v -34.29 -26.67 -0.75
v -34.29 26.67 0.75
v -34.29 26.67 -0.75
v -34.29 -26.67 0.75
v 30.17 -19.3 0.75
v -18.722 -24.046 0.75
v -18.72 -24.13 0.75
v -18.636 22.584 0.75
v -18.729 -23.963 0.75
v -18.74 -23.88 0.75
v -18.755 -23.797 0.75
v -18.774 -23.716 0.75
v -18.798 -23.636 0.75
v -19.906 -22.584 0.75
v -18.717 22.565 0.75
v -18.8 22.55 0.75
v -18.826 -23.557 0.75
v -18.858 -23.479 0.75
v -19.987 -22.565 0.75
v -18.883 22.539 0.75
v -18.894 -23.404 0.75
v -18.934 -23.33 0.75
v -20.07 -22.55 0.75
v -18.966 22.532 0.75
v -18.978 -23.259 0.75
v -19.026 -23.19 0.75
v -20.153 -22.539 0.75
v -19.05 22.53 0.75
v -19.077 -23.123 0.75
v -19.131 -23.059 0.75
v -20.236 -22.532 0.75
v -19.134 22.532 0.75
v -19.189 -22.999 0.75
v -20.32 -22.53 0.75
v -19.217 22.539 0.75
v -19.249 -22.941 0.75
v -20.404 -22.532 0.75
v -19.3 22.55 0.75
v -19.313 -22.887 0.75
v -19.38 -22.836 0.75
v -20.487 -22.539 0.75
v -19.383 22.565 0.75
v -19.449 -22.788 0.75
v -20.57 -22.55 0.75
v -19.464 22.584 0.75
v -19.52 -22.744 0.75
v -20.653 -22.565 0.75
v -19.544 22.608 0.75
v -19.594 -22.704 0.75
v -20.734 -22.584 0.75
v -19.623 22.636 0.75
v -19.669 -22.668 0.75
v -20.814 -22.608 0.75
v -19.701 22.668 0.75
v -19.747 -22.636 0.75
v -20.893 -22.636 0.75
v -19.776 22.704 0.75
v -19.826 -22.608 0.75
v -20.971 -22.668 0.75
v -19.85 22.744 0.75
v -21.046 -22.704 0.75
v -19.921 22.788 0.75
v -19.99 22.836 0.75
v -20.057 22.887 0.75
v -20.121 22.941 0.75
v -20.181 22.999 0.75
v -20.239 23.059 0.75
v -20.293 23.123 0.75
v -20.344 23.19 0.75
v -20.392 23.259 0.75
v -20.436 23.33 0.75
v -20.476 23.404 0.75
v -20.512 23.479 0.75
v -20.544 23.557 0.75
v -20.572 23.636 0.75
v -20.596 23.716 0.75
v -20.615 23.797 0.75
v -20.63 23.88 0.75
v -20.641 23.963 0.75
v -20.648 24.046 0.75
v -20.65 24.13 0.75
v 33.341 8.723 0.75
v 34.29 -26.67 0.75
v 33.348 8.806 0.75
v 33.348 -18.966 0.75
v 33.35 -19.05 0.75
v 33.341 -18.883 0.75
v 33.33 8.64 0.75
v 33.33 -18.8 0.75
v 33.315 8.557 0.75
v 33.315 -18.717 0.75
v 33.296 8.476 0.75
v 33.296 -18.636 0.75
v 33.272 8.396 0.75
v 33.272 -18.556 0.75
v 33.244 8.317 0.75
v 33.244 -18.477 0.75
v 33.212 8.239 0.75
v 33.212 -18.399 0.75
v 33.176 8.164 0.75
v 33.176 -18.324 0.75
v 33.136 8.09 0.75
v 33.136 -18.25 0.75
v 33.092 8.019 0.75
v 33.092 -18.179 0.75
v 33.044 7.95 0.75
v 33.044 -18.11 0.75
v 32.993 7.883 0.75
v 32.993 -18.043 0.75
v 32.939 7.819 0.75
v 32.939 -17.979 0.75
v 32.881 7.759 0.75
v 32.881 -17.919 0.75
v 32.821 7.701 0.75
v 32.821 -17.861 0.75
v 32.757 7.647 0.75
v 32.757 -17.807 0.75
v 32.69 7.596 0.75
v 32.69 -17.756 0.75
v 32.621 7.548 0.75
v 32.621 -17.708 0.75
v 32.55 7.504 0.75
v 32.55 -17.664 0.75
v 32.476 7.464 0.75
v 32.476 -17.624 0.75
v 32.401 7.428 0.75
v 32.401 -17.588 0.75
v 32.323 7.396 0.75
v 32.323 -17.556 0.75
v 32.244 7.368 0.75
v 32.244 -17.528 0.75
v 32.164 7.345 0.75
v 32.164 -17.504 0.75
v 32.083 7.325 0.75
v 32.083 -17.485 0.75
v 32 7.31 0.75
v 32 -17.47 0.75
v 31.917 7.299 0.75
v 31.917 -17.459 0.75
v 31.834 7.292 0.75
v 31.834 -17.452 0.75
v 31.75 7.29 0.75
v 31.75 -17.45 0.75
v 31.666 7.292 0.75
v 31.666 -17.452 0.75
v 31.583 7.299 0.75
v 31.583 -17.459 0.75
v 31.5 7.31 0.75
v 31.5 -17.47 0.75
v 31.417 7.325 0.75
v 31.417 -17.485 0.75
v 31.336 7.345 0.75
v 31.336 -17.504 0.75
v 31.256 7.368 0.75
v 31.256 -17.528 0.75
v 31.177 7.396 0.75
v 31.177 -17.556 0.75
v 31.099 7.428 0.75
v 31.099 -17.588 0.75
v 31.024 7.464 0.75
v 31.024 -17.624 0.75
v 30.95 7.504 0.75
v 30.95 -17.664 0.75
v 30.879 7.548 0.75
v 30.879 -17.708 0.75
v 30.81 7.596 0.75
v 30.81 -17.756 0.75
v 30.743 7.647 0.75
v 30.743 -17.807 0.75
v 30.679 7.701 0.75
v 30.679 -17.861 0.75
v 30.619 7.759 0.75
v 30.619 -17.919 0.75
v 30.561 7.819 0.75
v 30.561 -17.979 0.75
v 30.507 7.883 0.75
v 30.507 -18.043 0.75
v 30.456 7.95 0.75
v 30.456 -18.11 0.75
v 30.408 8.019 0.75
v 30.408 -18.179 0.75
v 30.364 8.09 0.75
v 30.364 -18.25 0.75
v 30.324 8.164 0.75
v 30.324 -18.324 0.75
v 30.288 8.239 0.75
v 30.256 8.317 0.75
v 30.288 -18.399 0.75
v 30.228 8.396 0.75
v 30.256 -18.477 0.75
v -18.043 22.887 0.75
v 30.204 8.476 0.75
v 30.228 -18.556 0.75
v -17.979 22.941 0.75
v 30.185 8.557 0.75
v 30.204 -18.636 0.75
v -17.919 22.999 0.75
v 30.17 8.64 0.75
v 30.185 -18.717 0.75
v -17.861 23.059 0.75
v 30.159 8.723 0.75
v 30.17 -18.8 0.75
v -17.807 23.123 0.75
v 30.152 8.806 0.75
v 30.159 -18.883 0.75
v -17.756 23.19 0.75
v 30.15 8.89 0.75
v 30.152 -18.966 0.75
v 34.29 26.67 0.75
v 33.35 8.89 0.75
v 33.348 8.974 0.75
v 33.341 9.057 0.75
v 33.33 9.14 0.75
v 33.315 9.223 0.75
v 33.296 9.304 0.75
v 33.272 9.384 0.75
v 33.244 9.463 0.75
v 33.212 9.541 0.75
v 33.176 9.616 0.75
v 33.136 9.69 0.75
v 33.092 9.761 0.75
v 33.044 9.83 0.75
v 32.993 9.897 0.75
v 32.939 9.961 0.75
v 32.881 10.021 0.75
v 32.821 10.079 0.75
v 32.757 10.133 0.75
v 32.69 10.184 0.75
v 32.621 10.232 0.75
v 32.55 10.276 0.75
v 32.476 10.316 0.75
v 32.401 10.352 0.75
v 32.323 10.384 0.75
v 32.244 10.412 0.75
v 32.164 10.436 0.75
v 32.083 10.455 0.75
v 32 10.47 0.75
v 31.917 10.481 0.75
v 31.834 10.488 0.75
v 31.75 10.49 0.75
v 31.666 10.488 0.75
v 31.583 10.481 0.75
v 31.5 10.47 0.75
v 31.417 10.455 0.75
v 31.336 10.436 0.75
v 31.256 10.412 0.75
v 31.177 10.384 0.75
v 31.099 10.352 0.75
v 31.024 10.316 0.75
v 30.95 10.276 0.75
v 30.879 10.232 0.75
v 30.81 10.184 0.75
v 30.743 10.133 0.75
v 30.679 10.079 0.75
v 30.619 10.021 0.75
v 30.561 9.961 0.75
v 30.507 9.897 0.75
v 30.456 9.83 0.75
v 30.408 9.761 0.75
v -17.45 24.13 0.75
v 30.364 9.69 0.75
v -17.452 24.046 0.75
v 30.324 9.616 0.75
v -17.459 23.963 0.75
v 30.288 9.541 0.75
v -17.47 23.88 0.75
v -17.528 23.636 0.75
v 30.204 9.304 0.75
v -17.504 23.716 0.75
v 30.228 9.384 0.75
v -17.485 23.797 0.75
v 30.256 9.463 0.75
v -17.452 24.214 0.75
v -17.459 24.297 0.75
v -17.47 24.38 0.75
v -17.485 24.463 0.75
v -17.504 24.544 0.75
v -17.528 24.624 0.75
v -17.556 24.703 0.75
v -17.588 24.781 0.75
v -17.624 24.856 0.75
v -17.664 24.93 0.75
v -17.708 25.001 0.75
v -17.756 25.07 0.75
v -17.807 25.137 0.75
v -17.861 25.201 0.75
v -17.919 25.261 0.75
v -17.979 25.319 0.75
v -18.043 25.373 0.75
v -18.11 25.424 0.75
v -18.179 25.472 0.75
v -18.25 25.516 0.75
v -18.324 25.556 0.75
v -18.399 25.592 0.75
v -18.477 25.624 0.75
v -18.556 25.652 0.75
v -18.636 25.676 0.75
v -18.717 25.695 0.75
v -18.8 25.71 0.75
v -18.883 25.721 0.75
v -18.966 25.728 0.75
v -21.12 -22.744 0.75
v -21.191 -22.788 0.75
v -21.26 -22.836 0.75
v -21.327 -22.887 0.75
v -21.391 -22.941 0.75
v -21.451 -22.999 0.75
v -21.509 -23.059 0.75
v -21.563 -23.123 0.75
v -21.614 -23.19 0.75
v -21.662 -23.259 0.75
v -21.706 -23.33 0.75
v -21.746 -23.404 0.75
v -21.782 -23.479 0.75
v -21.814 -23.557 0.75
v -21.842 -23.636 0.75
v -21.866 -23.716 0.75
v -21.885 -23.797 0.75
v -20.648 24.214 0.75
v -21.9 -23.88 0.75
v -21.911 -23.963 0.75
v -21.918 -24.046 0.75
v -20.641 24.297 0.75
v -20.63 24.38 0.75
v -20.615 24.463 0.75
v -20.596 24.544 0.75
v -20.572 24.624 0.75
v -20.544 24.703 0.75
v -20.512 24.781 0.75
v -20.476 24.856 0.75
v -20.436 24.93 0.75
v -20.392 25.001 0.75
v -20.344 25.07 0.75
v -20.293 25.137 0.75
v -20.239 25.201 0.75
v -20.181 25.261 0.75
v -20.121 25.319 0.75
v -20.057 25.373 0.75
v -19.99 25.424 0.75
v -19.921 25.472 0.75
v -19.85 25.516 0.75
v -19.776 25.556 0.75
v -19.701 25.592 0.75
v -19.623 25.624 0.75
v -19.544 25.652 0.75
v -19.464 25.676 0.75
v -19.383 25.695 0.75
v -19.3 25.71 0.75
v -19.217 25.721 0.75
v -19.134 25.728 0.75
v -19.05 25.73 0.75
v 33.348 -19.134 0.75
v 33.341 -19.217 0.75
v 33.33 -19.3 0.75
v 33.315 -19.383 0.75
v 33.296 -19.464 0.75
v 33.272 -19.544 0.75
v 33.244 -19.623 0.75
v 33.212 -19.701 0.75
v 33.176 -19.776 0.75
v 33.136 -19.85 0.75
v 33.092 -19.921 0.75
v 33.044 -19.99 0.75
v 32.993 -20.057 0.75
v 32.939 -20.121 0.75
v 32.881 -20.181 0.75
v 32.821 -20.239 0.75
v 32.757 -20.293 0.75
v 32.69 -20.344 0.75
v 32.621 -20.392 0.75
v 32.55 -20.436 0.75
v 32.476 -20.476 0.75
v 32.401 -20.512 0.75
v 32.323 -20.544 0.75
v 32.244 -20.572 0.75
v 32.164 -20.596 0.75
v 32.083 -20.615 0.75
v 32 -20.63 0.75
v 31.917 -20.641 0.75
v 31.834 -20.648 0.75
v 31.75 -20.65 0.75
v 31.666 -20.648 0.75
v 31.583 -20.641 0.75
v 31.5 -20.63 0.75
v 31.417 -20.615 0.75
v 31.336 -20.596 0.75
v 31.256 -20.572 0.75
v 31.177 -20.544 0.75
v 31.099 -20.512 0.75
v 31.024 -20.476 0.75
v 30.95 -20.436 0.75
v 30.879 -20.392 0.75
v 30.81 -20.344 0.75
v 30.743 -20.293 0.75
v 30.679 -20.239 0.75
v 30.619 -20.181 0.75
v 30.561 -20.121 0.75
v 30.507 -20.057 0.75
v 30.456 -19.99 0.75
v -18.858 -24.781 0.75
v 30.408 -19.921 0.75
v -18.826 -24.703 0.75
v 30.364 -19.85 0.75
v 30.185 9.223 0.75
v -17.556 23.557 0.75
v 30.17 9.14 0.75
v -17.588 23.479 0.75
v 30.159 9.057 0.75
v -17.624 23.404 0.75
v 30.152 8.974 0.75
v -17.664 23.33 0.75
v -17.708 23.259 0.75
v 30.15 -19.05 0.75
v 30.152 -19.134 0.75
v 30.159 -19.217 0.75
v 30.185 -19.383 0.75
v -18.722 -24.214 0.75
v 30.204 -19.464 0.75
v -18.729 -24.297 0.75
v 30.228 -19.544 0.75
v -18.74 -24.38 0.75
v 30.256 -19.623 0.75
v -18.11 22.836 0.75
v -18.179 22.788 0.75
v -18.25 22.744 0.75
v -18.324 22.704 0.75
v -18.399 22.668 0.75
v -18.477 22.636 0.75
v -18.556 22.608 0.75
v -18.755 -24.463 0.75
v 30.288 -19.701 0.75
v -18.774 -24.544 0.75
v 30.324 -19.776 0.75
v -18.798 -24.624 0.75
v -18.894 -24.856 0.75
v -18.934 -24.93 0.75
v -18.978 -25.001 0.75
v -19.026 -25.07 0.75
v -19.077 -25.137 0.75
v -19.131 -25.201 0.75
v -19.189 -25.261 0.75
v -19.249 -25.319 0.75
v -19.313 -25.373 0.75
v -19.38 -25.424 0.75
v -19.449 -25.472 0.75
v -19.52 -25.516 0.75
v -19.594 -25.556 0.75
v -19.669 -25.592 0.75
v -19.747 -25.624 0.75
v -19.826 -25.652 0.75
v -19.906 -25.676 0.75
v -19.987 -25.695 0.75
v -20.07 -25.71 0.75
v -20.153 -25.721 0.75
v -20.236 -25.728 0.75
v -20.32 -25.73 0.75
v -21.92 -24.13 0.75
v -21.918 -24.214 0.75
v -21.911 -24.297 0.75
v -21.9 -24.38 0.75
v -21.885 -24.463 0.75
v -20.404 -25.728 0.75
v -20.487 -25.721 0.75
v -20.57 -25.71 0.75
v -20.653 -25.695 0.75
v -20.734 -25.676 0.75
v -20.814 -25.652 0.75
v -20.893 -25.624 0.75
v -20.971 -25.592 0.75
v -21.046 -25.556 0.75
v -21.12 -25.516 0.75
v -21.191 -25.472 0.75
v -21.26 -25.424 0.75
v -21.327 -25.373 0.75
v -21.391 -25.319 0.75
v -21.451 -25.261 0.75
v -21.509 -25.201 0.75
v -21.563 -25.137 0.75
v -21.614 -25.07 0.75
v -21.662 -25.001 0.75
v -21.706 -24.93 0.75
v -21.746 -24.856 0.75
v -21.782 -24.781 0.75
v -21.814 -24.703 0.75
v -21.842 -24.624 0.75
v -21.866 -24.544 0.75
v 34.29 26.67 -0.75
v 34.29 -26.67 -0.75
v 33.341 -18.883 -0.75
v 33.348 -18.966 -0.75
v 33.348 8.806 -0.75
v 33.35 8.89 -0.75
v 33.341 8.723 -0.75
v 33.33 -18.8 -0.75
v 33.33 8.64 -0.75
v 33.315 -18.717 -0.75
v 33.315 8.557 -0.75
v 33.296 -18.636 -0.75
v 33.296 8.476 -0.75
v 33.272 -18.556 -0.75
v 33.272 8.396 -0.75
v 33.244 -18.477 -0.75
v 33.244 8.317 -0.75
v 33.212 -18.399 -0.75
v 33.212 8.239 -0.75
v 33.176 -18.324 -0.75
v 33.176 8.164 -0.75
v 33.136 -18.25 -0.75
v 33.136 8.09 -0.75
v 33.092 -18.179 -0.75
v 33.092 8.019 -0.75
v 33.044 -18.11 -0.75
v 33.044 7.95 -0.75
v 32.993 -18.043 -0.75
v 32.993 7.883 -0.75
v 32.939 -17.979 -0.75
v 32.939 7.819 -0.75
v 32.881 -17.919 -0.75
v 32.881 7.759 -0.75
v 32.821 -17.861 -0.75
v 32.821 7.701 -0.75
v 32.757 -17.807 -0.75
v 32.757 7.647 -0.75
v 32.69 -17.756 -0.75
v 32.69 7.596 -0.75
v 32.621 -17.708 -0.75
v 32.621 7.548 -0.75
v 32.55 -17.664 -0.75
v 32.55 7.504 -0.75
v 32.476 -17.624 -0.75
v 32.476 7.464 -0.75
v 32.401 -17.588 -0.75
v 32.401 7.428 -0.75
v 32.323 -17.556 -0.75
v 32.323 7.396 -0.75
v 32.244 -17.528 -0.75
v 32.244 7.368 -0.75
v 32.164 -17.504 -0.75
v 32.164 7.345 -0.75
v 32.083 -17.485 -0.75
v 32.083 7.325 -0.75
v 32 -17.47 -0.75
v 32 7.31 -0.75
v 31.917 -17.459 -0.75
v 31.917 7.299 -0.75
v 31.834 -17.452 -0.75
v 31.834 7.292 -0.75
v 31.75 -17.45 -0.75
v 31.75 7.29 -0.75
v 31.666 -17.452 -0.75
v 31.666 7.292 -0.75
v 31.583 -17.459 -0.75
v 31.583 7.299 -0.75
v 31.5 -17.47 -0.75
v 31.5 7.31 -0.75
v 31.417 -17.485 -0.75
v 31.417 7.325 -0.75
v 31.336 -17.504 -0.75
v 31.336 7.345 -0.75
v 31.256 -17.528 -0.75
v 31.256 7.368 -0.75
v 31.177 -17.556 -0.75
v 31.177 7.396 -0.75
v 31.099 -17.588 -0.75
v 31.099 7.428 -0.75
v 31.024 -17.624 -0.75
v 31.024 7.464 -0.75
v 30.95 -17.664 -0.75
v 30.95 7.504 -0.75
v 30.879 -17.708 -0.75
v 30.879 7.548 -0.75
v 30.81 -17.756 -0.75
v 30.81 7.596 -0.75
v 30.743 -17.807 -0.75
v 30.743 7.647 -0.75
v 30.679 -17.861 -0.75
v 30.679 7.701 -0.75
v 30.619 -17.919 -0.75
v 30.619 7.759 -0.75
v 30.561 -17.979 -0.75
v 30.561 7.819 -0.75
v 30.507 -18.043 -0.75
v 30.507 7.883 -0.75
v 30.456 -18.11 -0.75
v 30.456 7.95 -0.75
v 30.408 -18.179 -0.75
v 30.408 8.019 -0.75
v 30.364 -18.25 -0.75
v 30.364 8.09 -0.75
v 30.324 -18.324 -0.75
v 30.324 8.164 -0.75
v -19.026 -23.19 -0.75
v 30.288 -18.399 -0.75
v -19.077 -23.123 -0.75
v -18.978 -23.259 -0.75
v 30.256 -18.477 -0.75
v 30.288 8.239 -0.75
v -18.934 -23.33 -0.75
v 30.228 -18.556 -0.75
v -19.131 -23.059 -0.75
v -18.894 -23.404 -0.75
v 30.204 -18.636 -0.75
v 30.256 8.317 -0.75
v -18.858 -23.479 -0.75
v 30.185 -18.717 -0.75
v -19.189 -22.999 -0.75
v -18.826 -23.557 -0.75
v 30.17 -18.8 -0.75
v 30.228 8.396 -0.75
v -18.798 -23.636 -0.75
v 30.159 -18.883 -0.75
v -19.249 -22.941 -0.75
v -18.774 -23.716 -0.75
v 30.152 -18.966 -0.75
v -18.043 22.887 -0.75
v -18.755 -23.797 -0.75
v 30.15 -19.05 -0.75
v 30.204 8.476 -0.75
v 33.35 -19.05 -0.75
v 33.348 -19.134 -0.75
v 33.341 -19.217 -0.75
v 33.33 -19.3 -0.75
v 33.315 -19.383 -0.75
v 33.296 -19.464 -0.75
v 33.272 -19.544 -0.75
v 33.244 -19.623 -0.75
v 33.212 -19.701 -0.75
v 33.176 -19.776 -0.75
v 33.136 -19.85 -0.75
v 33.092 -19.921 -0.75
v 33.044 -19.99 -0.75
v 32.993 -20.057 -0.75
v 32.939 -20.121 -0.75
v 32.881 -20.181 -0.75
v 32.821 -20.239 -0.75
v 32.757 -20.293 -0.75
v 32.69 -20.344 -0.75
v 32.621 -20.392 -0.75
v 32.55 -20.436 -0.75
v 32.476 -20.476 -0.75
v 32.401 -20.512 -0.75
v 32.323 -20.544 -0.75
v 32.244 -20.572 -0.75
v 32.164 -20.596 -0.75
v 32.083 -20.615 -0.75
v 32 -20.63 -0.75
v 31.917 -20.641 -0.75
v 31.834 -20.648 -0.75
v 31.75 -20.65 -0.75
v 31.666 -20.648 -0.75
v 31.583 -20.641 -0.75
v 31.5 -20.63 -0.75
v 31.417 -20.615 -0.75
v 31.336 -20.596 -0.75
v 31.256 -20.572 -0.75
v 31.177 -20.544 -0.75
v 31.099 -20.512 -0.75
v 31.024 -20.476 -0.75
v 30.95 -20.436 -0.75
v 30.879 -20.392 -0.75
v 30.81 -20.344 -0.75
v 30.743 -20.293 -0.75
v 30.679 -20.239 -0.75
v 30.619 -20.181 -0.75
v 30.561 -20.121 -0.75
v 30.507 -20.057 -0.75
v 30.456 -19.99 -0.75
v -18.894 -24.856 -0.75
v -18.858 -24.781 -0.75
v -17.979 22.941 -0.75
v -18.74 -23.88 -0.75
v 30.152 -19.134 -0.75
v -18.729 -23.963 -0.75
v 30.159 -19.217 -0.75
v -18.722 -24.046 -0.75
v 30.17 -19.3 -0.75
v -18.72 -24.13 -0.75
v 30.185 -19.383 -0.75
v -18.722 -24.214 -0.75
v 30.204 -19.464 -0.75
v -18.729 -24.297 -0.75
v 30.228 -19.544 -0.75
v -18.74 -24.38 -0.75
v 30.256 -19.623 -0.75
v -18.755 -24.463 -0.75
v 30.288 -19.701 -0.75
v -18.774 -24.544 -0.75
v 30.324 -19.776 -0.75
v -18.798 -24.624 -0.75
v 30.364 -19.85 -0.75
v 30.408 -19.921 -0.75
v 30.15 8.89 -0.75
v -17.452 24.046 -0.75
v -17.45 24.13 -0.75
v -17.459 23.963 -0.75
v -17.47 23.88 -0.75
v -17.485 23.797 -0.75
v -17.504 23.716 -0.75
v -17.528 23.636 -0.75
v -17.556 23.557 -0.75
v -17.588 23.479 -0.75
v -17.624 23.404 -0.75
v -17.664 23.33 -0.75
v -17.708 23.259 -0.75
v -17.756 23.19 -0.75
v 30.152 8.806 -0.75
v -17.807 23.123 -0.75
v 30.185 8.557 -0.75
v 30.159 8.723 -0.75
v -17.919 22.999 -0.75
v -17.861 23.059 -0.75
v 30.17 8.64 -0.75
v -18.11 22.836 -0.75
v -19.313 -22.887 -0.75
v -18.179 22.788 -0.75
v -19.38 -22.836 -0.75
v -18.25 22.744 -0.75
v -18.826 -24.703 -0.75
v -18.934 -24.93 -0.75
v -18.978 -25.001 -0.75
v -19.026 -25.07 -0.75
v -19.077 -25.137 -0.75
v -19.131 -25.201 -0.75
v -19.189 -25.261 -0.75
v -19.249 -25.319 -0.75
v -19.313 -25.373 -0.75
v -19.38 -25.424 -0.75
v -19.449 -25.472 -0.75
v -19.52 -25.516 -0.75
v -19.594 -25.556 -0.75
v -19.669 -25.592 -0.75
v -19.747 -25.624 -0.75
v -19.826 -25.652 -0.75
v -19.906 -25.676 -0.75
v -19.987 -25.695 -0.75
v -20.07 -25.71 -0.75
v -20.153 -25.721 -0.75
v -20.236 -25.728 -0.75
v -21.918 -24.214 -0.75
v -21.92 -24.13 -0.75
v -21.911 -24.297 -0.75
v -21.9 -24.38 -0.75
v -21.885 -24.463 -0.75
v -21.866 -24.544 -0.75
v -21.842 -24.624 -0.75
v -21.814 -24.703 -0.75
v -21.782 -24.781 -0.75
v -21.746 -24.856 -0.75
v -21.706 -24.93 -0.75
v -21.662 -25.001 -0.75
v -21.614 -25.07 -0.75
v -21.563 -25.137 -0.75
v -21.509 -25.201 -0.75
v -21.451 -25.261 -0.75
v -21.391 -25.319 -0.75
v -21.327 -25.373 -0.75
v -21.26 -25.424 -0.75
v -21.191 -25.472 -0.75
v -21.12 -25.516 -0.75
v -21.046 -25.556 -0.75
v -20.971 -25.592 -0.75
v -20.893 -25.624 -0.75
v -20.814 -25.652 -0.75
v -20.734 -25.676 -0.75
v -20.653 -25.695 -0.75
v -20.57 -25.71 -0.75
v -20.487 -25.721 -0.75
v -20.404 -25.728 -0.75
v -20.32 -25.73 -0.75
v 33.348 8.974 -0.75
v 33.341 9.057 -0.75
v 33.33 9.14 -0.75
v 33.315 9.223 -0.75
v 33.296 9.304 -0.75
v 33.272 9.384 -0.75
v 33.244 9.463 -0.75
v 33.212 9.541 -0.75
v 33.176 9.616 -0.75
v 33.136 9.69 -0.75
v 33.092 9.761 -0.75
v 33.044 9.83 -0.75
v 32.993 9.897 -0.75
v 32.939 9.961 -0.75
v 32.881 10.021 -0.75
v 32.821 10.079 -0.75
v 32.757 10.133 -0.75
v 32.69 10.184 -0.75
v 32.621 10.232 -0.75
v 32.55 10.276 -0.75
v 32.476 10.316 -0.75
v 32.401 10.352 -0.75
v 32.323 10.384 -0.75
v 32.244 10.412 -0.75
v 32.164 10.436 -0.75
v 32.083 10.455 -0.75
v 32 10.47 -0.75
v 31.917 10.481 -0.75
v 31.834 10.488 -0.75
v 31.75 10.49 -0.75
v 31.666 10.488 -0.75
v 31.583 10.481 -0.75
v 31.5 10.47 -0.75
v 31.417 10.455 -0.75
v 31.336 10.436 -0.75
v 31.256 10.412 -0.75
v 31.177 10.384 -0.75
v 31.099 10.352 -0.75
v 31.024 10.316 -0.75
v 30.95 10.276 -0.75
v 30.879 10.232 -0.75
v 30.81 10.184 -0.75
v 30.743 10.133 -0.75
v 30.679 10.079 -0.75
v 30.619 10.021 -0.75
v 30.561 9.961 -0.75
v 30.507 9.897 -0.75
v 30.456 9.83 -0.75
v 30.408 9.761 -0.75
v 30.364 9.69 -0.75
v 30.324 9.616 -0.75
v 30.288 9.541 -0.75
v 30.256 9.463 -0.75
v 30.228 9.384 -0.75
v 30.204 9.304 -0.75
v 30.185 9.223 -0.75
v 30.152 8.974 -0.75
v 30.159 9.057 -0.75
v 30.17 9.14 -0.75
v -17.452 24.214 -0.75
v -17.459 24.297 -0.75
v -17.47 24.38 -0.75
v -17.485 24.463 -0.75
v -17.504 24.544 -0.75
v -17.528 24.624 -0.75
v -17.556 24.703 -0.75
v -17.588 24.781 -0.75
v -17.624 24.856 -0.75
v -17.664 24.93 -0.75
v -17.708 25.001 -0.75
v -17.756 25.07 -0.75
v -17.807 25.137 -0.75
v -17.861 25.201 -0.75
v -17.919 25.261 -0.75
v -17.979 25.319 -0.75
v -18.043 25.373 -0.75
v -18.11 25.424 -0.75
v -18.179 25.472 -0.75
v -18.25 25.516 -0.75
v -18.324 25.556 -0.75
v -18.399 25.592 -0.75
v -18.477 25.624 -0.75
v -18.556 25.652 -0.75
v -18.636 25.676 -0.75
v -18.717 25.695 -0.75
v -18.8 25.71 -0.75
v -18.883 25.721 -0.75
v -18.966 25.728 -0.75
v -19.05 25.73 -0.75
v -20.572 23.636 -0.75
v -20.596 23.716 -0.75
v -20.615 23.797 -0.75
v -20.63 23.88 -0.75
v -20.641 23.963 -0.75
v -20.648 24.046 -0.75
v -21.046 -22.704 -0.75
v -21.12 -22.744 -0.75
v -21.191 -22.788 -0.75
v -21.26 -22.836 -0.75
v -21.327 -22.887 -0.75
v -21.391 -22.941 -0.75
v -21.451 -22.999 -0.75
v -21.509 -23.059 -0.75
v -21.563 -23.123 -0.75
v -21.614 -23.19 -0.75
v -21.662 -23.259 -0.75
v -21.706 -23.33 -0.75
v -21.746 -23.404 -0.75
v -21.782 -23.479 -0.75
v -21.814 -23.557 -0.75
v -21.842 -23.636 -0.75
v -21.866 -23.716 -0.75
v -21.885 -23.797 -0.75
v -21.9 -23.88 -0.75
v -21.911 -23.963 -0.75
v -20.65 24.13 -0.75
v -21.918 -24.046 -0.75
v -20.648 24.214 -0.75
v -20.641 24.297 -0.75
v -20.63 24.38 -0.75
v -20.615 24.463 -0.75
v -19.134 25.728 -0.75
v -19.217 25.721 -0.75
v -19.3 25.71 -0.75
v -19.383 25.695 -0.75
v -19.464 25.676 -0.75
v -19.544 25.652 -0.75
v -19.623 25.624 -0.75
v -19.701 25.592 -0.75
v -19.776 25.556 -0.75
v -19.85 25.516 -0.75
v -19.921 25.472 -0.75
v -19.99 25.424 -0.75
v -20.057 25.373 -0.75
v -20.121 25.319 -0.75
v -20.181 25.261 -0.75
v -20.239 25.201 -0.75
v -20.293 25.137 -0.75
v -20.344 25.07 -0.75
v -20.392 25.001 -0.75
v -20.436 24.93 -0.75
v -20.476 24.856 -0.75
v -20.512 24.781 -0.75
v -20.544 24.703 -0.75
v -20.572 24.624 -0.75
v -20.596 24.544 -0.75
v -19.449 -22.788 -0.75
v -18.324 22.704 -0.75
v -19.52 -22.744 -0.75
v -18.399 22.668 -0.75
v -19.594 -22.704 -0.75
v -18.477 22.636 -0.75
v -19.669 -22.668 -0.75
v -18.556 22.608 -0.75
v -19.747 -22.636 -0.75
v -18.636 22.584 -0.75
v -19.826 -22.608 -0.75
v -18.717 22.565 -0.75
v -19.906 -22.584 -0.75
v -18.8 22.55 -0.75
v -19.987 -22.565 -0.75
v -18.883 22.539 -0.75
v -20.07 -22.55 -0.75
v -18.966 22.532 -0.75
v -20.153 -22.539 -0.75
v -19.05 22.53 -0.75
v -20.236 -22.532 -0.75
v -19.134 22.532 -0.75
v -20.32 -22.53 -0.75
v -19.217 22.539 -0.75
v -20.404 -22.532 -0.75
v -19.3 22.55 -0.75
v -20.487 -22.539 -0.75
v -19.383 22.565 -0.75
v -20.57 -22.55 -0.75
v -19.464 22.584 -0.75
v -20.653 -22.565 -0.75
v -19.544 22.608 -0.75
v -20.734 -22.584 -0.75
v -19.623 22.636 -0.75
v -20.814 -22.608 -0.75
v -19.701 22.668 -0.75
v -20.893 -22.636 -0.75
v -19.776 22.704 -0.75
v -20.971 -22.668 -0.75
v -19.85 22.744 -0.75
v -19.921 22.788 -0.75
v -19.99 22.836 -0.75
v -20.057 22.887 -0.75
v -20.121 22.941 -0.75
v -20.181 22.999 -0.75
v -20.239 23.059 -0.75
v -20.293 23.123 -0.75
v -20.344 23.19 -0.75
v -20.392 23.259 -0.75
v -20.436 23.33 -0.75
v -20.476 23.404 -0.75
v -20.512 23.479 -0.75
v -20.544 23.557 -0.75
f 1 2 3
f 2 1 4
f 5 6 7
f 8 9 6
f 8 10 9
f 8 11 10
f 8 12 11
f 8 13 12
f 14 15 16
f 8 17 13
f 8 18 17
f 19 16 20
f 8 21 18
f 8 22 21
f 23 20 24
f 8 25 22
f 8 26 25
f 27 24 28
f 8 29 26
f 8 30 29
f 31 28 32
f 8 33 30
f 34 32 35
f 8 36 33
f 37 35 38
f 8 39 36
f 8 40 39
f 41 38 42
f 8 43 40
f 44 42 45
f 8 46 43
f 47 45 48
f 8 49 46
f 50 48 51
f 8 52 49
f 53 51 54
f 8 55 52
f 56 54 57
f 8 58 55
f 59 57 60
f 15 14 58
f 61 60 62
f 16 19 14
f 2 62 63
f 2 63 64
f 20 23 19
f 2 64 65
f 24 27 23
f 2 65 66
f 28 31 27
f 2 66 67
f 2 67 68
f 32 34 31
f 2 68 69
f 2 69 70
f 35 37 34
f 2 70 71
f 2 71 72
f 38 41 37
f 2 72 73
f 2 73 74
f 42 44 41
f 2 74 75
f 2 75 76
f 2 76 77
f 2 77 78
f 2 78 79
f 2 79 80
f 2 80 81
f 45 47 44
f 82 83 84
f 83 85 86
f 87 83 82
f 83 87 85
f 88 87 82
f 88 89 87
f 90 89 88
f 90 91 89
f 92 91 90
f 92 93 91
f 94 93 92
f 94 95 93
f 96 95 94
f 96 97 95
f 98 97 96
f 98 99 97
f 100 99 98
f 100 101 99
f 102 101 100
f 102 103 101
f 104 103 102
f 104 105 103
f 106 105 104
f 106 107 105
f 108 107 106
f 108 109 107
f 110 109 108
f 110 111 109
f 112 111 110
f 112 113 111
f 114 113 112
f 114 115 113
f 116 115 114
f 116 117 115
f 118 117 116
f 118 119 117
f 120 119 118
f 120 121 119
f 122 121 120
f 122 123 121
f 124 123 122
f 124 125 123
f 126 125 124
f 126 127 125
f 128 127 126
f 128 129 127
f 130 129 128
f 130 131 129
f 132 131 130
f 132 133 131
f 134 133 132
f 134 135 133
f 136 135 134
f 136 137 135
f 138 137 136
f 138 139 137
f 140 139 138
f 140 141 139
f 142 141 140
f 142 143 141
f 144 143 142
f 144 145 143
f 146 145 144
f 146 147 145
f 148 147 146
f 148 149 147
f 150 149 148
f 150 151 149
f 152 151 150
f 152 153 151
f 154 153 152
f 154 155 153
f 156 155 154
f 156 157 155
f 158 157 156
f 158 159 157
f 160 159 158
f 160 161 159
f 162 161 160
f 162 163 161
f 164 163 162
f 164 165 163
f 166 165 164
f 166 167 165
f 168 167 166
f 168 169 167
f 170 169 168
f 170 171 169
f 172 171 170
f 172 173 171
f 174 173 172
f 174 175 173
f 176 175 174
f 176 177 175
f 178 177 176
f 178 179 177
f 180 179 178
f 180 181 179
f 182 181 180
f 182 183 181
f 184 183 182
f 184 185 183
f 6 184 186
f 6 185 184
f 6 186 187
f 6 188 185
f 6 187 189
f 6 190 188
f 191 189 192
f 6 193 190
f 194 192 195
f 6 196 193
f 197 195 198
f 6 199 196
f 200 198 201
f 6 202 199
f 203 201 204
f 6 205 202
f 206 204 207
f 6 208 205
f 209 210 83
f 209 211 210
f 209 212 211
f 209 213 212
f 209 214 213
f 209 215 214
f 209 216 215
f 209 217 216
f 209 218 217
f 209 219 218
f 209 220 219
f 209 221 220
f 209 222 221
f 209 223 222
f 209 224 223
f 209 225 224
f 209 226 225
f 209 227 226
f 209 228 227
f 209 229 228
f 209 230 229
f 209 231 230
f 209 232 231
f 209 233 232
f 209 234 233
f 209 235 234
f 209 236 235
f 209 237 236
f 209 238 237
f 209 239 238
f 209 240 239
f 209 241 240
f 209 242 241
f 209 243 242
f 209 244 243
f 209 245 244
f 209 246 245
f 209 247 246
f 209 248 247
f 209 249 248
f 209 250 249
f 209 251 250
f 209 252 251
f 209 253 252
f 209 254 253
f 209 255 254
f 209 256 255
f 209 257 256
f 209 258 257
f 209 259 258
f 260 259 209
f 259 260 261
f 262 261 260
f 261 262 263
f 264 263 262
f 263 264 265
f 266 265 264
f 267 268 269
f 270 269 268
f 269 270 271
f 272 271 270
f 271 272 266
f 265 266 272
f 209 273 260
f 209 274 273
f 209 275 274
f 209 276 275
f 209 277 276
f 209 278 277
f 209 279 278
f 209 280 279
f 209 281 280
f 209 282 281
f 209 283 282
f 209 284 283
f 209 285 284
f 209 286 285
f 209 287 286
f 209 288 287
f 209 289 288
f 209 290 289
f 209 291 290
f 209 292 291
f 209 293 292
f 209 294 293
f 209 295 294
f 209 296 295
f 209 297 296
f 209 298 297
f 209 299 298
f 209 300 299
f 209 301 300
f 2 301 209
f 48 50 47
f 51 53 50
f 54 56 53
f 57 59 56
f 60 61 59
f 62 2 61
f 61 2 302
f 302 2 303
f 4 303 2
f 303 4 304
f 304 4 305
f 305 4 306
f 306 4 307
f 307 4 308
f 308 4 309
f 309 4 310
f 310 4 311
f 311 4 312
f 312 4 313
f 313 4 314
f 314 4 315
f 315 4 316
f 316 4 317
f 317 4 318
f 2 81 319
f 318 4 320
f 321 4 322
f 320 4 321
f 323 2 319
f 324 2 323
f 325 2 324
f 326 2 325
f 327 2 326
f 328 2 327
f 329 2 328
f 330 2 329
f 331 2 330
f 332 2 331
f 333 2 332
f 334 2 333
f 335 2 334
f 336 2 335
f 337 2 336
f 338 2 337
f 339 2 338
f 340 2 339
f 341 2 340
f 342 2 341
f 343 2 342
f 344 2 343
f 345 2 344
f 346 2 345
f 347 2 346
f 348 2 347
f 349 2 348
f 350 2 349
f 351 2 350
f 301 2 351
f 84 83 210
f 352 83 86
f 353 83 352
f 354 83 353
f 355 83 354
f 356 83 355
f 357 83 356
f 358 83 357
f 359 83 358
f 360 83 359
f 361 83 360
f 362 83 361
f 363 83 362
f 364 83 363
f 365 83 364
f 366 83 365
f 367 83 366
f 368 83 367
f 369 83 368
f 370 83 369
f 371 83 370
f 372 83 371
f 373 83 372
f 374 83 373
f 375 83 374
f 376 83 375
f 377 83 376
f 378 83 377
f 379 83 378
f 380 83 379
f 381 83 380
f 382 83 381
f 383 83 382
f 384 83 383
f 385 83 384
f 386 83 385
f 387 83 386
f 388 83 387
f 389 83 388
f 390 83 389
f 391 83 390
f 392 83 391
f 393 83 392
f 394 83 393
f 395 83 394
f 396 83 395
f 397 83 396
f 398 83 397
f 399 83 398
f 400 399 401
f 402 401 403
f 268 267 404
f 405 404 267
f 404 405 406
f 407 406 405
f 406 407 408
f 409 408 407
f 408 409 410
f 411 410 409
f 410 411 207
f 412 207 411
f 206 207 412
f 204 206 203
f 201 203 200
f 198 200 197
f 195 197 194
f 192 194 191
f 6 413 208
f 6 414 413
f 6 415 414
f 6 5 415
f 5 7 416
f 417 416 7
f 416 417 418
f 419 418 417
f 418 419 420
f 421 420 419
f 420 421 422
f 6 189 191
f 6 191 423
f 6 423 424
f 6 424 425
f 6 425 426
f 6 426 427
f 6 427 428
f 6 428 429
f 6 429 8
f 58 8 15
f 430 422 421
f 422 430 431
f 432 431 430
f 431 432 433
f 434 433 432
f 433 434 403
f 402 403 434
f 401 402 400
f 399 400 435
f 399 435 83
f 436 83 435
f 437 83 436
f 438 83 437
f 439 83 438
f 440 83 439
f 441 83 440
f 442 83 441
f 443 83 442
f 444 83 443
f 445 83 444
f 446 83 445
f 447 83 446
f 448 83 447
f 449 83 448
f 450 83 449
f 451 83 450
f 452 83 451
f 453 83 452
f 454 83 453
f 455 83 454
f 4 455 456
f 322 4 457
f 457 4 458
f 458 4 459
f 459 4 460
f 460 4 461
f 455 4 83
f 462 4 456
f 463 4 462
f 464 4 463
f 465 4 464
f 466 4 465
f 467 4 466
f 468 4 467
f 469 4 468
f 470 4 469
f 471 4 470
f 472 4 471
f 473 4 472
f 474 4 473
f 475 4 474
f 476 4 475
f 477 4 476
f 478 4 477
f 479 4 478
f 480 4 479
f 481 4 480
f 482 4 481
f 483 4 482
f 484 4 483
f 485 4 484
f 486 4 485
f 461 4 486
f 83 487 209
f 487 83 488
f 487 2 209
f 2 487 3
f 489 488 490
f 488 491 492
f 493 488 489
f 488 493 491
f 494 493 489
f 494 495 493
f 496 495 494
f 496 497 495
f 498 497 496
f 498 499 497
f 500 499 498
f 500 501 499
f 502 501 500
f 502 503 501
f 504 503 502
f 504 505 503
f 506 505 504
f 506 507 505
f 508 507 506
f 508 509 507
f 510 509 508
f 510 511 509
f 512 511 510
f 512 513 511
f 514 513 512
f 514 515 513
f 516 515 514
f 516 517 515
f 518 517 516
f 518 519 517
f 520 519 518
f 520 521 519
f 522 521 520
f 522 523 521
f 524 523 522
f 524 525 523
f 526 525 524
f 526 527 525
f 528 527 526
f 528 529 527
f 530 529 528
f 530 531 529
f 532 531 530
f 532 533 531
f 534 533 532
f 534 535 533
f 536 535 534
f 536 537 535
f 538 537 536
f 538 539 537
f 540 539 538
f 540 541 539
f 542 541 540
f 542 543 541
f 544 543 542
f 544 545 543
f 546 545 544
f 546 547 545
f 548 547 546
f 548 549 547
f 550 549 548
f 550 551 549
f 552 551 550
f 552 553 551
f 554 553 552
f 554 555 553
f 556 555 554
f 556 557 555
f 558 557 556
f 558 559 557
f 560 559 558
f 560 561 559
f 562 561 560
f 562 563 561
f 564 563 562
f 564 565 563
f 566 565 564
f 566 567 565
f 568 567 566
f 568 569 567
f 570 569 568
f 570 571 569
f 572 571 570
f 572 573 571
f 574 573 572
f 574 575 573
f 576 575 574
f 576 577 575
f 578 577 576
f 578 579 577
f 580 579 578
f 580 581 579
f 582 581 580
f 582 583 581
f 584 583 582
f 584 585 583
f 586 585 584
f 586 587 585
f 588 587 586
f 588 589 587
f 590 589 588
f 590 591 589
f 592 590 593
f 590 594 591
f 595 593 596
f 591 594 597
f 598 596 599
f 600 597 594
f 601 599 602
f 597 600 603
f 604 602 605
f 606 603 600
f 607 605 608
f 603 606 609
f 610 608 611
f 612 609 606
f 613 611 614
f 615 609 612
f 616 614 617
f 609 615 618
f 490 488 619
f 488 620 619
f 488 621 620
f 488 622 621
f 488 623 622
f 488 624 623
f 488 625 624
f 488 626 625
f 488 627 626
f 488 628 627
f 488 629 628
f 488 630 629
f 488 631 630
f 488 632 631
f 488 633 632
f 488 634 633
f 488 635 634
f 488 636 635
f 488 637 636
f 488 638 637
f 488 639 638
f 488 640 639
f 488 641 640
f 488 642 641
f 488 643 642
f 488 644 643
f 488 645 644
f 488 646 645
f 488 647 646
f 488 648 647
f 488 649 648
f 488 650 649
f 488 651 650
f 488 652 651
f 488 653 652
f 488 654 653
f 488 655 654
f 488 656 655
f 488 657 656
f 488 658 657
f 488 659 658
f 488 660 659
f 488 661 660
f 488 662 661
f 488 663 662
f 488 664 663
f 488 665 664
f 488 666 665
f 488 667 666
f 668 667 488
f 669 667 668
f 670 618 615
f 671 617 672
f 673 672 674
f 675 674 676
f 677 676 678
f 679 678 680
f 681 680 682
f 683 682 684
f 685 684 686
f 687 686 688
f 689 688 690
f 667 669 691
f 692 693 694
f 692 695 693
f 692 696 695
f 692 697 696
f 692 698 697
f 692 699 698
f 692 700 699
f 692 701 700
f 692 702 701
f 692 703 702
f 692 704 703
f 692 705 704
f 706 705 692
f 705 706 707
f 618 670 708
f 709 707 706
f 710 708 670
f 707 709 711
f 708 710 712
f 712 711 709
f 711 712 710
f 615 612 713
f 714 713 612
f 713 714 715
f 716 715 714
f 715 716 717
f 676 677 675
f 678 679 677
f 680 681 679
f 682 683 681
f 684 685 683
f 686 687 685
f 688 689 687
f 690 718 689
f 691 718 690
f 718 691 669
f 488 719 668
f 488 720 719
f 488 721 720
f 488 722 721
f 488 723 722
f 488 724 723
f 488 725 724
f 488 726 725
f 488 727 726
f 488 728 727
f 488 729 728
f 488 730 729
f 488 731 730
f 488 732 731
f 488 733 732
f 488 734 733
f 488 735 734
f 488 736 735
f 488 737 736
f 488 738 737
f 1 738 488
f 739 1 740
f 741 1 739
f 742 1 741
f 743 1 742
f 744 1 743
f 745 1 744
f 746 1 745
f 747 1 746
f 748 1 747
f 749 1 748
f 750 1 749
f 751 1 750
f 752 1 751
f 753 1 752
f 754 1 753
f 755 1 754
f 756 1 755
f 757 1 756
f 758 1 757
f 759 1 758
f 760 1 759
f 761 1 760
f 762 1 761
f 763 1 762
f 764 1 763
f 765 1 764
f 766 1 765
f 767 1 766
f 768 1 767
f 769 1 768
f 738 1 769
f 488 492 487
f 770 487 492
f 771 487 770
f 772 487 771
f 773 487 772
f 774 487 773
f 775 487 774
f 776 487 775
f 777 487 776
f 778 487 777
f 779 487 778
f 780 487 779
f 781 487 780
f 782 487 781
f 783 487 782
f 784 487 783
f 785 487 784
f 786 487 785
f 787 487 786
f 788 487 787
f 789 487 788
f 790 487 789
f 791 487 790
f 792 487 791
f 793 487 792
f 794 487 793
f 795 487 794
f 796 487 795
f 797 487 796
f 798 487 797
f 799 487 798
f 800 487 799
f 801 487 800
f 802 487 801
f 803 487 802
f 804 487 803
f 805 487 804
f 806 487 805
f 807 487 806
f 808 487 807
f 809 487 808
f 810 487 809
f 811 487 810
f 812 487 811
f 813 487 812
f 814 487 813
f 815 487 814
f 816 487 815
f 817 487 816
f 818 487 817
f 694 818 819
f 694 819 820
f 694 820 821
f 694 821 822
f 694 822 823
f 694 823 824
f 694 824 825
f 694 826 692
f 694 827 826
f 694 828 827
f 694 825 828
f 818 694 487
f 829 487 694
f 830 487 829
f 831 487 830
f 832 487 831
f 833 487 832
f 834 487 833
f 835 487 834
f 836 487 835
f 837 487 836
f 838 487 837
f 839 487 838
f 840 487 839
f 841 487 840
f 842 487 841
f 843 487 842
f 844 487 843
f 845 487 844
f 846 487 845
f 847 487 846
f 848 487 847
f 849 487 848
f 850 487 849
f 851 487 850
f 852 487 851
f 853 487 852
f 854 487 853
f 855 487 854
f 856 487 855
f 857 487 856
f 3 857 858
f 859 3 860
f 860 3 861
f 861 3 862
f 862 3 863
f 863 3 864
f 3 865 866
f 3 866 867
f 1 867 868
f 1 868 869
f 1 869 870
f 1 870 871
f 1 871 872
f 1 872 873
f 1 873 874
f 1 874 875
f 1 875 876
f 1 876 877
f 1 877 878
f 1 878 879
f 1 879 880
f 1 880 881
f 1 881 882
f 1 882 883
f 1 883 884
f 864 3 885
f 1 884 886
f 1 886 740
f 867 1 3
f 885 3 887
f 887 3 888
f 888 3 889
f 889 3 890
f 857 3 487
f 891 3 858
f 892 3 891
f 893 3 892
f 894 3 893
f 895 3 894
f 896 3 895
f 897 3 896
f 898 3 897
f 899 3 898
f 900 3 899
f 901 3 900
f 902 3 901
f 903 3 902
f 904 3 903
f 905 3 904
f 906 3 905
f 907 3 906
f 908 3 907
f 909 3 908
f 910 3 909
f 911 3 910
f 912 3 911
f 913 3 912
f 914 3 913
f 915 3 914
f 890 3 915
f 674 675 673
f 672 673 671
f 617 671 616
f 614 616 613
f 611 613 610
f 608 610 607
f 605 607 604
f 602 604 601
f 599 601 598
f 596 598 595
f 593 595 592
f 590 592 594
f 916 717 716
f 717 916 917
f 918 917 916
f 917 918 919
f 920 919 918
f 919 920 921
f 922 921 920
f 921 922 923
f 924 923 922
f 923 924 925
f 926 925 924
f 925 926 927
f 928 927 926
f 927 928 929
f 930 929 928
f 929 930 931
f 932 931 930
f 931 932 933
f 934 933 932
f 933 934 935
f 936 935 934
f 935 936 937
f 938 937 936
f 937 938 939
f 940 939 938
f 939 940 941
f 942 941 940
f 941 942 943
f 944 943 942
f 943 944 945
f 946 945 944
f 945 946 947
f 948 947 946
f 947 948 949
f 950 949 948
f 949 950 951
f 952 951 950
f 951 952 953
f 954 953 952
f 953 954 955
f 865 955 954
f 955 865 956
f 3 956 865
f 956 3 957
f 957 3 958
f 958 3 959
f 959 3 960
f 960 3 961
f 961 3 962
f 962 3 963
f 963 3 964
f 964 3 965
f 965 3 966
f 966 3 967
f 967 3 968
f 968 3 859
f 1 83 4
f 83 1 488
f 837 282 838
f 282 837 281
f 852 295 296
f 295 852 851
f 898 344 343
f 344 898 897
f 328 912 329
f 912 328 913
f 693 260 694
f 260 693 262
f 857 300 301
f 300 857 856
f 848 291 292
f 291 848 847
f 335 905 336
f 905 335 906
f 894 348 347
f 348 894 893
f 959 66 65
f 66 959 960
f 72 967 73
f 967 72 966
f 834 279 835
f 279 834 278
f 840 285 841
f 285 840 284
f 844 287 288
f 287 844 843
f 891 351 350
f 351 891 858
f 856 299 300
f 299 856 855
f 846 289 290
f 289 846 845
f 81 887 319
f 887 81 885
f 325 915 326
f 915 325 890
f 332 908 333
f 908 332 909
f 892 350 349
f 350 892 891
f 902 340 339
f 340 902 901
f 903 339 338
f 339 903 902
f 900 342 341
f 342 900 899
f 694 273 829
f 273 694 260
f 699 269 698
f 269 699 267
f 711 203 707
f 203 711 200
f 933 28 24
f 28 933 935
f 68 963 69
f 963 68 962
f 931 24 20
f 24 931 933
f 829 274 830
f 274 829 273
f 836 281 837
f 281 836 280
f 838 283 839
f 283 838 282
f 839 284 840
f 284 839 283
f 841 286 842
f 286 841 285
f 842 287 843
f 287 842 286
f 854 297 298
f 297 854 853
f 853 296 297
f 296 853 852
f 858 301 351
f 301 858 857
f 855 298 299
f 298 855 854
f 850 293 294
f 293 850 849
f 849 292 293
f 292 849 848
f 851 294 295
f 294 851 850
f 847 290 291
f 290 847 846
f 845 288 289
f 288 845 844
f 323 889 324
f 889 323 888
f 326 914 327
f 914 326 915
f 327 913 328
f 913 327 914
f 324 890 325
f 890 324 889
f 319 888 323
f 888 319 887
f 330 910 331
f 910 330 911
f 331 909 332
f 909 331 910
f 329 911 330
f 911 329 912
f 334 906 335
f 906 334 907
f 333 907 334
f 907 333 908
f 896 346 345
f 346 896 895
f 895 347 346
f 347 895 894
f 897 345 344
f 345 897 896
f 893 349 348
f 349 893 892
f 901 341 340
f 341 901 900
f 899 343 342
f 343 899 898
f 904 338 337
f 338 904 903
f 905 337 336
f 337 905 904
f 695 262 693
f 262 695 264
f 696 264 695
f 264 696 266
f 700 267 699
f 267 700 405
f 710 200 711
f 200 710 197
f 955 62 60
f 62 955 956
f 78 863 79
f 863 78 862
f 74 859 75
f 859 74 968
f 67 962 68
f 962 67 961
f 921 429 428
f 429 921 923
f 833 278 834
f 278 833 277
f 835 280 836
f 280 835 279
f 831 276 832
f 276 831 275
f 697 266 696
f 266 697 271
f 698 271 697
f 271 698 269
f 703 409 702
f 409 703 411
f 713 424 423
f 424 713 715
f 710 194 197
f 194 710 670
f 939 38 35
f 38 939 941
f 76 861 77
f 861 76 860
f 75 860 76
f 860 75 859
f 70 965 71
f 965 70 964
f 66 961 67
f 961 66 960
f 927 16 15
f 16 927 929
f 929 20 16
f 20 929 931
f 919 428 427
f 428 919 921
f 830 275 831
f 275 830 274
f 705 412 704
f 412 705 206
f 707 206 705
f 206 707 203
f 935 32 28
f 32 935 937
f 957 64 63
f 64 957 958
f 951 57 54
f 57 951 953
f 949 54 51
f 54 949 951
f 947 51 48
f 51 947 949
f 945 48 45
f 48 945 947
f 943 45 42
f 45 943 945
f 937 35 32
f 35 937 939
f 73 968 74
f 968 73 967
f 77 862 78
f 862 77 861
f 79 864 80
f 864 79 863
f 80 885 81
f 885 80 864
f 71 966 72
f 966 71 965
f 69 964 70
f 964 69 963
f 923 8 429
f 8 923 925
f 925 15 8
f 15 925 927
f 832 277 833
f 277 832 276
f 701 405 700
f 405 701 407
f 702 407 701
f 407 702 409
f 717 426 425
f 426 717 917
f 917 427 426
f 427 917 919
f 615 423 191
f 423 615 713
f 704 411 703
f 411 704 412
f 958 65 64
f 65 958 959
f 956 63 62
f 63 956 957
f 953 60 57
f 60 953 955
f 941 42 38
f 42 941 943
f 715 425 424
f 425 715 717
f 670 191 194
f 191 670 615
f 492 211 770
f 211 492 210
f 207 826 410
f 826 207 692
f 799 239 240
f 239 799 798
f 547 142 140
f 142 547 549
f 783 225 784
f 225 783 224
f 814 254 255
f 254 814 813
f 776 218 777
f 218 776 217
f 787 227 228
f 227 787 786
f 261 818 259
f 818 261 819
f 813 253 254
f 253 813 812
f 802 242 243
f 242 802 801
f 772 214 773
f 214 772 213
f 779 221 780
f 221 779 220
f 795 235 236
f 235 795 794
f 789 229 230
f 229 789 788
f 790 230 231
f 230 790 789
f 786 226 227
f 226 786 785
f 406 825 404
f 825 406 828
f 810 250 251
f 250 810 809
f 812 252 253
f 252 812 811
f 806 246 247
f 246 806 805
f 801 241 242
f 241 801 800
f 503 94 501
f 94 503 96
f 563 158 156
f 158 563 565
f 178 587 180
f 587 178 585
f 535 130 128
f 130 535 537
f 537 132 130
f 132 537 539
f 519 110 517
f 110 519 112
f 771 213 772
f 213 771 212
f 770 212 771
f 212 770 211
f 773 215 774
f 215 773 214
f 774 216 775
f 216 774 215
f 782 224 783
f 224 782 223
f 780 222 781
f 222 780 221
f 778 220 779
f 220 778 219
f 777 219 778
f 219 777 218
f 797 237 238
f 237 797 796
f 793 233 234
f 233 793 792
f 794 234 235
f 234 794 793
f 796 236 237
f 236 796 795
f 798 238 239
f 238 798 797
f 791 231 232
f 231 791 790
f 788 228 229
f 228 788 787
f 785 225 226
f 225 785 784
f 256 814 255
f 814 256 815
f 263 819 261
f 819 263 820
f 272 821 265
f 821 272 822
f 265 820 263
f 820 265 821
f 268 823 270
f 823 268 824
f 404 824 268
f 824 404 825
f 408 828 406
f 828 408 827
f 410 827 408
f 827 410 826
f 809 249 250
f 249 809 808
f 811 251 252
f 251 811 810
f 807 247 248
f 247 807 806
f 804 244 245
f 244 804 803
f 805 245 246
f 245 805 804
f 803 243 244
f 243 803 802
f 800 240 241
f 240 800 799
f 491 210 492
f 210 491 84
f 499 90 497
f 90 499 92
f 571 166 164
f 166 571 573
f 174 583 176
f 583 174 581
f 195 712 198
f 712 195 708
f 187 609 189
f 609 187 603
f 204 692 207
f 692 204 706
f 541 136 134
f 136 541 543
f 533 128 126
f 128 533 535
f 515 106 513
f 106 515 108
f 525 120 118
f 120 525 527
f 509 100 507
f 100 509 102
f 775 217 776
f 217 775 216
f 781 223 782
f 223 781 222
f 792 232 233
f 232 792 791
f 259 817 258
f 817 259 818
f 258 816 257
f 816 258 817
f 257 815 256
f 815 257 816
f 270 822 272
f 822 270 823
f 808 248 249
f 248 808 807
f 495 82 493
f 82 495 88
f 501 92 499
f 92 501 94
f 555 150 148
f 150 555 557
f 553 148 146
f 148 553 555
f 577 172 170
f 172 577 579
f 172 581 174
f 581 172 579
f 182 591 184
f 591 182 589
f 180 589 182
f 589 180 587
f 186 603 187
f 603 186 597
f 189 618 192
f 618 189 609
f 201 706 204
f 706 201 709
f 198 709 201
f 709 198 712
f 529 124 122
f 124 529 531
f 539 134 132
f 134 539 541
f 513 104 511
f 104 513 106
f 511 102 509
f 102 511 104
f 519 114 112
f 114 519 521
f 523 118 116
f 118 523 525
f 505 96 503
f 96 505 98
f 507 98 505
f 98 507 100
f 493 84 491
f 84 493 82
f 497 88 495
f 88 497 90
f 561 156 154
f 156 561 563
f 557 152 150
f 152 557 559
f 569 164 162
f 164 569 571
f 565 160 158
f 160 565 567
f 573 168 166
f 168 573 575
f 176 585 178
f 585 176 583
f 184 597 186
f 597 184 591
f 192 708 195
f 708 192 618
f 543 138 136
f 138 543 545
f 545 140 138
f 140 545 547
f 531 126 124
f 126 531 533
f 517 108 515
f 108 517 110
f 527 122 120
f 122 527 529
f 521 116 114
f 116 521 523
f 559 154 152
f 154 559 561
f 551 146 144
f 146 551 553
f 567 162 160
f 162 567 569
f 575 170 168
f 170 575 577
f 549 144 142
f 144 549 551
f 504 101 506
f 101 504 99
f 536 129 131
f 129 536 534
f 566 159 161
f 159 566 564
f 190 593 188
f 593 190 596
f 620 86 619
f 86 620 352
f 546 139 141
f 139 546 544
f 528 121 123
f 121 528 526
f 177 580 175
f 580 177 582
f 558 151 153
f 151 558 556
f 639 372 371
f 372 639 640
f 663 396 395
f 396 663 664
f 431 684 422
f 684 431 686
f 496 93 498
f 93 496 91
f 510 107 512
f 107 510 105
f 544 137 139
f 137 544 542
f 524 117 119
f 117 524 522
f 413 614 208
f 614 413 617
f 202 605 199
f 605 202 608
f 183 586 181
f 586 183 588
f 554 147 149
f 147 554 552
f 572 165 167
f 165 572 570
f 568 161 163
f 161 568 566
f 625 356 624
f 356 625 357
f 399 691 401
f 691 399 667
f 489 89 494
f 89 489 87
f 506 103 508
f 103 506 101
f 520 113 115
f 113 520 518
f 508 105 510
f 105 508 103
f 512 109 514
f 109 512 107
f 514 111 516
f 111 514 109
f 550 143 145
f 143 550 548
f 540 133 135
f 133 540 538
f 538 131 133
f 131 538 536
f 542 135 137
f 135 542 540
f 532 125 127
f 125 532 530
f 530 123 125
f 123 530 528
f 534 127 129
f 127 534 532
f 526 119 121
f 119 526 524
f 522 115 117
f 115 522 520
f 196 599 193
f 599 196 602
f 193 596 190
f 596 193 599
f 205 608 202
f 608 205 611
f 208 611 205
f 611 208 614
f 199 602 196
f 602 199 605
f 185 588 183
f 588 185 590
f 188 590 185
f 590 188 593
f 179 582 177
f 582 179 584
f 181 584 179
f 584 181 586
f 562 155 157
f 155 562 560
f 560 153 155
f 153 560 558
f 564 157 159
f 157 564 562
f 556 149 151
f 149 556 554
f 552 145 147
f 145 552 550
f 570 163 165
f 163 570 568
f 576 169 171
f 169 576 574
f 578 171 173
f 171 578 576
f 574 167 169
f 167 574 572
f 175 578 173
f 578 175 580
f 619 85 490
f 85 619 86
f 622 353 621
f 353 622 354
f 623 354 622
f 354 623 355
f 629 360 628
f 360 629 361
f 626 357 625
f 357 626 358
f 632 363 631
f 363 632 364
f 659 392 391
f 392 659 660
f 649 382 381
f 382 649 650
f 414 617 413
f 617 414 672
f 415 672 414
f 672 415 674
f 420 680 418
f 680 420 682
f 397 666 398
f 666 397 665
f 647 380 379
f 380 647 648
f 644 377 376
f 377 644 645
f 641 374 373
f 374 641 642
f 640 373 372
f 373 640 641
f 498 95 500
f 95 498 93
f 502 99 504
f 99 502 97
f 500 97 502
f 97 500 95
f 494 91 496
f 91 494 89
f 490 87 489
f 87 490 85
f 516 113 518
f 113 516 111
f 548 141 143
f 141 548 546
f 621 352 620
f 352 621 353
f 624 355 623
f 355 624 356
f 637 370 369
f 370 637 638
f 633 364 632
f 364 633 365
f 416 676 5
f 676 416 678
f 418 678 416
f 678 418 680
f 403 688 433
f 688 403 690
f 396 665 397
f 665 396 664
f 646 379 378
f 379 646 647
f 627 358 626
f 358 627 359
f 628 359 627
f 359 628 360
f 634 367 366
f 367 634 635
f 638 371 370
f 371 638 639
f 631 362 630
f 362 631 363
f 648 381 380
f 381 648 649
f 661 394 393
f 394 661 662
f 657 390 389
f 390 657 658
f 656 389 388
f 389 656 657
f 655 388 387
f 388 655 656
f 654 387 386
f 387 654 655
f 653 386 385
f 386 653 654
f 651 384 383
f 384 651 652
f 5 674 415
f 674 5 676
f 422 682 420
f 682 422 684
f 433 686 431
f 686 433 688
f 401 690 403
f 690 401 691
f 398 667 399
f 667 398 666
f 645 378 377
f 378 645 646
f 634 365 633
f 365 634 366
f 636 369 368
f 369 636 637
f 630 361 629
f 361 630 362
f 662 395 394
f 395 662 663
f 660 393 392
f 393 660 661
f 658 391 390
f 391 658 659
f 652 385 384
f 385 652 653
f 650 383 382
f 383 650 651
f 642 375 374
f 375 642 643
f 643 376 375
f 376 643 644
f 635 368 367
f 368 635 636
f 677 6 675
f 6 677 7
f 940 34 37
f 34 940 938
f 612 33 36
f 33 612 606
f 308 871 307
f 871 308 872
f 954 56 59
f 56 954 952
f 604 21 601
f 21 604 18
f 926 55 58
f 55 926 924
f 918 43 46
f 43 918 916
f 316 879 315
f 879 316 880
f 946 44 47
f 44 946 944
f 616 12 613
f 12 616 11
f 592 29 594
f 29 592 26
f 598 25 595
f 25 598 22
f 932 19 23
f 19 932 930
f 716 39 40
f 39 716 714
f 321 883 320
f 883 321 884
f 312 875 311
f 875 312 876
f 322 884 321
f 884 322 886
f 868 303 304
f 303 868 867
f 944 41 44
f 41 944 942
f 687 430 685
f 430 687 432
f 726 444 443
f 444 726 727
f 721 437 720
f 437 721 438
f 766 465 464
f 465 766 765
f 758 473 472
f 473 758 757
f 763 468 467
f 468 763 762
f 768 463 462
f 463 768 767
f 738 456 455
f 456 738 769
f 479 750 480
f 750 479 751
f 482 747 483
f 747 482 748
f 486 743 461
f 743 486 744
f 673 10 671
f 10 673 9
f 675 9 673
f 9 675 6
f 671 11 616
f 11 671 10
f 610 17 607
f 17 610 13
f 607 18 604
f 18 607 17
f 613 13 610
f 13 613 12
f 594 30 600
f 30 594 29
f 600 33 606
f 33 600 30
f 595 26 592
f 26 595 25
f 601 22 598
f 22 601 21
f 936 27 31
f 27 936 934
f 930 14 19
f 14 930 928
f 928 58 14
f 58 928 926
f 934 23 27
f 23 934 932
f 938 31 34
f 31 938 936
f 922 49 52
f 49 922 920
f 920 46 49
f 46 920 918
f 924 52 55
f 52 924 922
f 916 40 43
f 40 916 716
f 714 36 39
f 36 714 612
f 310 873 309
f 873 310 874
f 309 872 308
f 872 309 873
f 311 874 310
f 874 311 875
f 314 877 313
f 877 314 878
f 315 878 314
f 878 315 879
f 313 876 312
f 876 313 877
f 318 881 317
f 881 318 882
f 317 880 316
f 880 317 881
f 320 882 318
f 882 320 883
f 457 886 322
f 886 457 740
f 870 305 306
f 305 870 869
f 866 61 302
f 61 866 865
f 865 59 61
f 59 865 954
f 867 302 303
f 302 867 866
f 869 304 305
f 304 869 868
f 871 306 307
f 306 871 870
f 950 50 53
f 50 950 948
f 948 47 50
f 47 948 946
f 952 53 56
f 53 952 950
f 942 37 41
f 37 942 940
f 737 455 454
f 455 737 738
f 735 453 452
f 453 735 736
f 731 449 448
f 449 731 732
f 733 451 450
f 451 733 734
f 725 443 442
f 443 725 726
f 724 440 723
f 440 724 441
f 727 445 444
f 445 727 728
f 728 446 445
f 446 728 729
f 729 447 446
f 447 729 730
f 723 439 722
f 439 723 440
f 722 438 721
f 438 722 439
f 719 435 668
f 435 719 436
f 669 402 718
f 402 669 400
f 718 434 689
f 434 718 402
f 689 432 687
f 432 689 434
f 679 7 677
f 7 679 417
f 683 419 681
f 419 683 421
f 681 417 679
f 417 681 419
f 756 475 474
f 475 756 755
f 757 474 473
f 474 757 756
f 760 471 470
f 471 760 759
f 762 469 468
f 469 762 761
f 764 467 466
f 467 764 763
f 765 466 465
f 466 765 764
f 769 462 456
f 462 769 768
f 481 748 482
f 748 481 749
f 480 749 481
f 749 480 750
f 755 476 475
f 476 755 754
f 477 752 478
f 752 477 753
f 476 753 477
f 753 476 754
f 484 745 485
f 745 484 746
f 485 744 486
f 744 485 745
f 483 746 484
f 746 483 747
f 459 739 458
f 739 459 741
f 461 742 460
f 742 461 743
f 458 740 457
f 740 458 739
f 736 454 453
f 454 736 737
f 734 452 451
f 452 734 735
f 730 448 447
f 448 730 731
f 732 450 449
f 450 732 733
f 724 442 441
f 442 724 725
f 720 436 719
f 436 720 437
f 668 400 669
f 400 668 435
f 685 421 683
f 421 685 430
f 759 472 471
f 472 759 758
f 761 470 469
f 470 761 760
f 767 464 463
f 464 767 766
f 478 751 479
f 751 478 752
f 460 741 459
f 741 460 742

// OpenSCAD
// file: dim_plt_arduino.scad
//Dimensions de la plateforme Arduino
C=25.4;
//Dimensions de la carte de crédit
L1=85; // soit en pouces 3.3464566
l1=54; // soit en pouces 2.1259842
e=3;
r1=3.2/2;//rayon des trous de fixation
//Entraxes des trous de fixation de la carte Arduino 101
xt1=-0.75*C; xt2=1.25*C; xt3=xt2; xt4=-0.8*C;
yt1=0.95*C; yt2=0.35*C; yt3=-0.75*C; yt4=-0.95*C;
//Dimensions de la carte Arduino
L2=2.7*C;
l2=2.1*C;
ep=14;//cette epaisseur est referencee à l'embase USB
//Dimensions du shield arduino
//les memes
ep_sh=1.5;
// main file
include <dim_plt_arduino.scad>
$fn=120;
difference() {
cube([L2,l2,ep_sh], center=true);
    translate([xt1,yt1,0]) cylinder(1.1*ep_sh,r1,r1,center=true);
    translate([xt2,yt2,0]) cylinder(1.1*ep_sh,r1,r1,center=true);
    translate([xt3,yt3,0]) cylinder(1.1*ep_sh,r1,r1,center=true);
    translate([xt4,yt4,0]) cylinder(1.1*ep_sh,r1,r1,center=true);
}
